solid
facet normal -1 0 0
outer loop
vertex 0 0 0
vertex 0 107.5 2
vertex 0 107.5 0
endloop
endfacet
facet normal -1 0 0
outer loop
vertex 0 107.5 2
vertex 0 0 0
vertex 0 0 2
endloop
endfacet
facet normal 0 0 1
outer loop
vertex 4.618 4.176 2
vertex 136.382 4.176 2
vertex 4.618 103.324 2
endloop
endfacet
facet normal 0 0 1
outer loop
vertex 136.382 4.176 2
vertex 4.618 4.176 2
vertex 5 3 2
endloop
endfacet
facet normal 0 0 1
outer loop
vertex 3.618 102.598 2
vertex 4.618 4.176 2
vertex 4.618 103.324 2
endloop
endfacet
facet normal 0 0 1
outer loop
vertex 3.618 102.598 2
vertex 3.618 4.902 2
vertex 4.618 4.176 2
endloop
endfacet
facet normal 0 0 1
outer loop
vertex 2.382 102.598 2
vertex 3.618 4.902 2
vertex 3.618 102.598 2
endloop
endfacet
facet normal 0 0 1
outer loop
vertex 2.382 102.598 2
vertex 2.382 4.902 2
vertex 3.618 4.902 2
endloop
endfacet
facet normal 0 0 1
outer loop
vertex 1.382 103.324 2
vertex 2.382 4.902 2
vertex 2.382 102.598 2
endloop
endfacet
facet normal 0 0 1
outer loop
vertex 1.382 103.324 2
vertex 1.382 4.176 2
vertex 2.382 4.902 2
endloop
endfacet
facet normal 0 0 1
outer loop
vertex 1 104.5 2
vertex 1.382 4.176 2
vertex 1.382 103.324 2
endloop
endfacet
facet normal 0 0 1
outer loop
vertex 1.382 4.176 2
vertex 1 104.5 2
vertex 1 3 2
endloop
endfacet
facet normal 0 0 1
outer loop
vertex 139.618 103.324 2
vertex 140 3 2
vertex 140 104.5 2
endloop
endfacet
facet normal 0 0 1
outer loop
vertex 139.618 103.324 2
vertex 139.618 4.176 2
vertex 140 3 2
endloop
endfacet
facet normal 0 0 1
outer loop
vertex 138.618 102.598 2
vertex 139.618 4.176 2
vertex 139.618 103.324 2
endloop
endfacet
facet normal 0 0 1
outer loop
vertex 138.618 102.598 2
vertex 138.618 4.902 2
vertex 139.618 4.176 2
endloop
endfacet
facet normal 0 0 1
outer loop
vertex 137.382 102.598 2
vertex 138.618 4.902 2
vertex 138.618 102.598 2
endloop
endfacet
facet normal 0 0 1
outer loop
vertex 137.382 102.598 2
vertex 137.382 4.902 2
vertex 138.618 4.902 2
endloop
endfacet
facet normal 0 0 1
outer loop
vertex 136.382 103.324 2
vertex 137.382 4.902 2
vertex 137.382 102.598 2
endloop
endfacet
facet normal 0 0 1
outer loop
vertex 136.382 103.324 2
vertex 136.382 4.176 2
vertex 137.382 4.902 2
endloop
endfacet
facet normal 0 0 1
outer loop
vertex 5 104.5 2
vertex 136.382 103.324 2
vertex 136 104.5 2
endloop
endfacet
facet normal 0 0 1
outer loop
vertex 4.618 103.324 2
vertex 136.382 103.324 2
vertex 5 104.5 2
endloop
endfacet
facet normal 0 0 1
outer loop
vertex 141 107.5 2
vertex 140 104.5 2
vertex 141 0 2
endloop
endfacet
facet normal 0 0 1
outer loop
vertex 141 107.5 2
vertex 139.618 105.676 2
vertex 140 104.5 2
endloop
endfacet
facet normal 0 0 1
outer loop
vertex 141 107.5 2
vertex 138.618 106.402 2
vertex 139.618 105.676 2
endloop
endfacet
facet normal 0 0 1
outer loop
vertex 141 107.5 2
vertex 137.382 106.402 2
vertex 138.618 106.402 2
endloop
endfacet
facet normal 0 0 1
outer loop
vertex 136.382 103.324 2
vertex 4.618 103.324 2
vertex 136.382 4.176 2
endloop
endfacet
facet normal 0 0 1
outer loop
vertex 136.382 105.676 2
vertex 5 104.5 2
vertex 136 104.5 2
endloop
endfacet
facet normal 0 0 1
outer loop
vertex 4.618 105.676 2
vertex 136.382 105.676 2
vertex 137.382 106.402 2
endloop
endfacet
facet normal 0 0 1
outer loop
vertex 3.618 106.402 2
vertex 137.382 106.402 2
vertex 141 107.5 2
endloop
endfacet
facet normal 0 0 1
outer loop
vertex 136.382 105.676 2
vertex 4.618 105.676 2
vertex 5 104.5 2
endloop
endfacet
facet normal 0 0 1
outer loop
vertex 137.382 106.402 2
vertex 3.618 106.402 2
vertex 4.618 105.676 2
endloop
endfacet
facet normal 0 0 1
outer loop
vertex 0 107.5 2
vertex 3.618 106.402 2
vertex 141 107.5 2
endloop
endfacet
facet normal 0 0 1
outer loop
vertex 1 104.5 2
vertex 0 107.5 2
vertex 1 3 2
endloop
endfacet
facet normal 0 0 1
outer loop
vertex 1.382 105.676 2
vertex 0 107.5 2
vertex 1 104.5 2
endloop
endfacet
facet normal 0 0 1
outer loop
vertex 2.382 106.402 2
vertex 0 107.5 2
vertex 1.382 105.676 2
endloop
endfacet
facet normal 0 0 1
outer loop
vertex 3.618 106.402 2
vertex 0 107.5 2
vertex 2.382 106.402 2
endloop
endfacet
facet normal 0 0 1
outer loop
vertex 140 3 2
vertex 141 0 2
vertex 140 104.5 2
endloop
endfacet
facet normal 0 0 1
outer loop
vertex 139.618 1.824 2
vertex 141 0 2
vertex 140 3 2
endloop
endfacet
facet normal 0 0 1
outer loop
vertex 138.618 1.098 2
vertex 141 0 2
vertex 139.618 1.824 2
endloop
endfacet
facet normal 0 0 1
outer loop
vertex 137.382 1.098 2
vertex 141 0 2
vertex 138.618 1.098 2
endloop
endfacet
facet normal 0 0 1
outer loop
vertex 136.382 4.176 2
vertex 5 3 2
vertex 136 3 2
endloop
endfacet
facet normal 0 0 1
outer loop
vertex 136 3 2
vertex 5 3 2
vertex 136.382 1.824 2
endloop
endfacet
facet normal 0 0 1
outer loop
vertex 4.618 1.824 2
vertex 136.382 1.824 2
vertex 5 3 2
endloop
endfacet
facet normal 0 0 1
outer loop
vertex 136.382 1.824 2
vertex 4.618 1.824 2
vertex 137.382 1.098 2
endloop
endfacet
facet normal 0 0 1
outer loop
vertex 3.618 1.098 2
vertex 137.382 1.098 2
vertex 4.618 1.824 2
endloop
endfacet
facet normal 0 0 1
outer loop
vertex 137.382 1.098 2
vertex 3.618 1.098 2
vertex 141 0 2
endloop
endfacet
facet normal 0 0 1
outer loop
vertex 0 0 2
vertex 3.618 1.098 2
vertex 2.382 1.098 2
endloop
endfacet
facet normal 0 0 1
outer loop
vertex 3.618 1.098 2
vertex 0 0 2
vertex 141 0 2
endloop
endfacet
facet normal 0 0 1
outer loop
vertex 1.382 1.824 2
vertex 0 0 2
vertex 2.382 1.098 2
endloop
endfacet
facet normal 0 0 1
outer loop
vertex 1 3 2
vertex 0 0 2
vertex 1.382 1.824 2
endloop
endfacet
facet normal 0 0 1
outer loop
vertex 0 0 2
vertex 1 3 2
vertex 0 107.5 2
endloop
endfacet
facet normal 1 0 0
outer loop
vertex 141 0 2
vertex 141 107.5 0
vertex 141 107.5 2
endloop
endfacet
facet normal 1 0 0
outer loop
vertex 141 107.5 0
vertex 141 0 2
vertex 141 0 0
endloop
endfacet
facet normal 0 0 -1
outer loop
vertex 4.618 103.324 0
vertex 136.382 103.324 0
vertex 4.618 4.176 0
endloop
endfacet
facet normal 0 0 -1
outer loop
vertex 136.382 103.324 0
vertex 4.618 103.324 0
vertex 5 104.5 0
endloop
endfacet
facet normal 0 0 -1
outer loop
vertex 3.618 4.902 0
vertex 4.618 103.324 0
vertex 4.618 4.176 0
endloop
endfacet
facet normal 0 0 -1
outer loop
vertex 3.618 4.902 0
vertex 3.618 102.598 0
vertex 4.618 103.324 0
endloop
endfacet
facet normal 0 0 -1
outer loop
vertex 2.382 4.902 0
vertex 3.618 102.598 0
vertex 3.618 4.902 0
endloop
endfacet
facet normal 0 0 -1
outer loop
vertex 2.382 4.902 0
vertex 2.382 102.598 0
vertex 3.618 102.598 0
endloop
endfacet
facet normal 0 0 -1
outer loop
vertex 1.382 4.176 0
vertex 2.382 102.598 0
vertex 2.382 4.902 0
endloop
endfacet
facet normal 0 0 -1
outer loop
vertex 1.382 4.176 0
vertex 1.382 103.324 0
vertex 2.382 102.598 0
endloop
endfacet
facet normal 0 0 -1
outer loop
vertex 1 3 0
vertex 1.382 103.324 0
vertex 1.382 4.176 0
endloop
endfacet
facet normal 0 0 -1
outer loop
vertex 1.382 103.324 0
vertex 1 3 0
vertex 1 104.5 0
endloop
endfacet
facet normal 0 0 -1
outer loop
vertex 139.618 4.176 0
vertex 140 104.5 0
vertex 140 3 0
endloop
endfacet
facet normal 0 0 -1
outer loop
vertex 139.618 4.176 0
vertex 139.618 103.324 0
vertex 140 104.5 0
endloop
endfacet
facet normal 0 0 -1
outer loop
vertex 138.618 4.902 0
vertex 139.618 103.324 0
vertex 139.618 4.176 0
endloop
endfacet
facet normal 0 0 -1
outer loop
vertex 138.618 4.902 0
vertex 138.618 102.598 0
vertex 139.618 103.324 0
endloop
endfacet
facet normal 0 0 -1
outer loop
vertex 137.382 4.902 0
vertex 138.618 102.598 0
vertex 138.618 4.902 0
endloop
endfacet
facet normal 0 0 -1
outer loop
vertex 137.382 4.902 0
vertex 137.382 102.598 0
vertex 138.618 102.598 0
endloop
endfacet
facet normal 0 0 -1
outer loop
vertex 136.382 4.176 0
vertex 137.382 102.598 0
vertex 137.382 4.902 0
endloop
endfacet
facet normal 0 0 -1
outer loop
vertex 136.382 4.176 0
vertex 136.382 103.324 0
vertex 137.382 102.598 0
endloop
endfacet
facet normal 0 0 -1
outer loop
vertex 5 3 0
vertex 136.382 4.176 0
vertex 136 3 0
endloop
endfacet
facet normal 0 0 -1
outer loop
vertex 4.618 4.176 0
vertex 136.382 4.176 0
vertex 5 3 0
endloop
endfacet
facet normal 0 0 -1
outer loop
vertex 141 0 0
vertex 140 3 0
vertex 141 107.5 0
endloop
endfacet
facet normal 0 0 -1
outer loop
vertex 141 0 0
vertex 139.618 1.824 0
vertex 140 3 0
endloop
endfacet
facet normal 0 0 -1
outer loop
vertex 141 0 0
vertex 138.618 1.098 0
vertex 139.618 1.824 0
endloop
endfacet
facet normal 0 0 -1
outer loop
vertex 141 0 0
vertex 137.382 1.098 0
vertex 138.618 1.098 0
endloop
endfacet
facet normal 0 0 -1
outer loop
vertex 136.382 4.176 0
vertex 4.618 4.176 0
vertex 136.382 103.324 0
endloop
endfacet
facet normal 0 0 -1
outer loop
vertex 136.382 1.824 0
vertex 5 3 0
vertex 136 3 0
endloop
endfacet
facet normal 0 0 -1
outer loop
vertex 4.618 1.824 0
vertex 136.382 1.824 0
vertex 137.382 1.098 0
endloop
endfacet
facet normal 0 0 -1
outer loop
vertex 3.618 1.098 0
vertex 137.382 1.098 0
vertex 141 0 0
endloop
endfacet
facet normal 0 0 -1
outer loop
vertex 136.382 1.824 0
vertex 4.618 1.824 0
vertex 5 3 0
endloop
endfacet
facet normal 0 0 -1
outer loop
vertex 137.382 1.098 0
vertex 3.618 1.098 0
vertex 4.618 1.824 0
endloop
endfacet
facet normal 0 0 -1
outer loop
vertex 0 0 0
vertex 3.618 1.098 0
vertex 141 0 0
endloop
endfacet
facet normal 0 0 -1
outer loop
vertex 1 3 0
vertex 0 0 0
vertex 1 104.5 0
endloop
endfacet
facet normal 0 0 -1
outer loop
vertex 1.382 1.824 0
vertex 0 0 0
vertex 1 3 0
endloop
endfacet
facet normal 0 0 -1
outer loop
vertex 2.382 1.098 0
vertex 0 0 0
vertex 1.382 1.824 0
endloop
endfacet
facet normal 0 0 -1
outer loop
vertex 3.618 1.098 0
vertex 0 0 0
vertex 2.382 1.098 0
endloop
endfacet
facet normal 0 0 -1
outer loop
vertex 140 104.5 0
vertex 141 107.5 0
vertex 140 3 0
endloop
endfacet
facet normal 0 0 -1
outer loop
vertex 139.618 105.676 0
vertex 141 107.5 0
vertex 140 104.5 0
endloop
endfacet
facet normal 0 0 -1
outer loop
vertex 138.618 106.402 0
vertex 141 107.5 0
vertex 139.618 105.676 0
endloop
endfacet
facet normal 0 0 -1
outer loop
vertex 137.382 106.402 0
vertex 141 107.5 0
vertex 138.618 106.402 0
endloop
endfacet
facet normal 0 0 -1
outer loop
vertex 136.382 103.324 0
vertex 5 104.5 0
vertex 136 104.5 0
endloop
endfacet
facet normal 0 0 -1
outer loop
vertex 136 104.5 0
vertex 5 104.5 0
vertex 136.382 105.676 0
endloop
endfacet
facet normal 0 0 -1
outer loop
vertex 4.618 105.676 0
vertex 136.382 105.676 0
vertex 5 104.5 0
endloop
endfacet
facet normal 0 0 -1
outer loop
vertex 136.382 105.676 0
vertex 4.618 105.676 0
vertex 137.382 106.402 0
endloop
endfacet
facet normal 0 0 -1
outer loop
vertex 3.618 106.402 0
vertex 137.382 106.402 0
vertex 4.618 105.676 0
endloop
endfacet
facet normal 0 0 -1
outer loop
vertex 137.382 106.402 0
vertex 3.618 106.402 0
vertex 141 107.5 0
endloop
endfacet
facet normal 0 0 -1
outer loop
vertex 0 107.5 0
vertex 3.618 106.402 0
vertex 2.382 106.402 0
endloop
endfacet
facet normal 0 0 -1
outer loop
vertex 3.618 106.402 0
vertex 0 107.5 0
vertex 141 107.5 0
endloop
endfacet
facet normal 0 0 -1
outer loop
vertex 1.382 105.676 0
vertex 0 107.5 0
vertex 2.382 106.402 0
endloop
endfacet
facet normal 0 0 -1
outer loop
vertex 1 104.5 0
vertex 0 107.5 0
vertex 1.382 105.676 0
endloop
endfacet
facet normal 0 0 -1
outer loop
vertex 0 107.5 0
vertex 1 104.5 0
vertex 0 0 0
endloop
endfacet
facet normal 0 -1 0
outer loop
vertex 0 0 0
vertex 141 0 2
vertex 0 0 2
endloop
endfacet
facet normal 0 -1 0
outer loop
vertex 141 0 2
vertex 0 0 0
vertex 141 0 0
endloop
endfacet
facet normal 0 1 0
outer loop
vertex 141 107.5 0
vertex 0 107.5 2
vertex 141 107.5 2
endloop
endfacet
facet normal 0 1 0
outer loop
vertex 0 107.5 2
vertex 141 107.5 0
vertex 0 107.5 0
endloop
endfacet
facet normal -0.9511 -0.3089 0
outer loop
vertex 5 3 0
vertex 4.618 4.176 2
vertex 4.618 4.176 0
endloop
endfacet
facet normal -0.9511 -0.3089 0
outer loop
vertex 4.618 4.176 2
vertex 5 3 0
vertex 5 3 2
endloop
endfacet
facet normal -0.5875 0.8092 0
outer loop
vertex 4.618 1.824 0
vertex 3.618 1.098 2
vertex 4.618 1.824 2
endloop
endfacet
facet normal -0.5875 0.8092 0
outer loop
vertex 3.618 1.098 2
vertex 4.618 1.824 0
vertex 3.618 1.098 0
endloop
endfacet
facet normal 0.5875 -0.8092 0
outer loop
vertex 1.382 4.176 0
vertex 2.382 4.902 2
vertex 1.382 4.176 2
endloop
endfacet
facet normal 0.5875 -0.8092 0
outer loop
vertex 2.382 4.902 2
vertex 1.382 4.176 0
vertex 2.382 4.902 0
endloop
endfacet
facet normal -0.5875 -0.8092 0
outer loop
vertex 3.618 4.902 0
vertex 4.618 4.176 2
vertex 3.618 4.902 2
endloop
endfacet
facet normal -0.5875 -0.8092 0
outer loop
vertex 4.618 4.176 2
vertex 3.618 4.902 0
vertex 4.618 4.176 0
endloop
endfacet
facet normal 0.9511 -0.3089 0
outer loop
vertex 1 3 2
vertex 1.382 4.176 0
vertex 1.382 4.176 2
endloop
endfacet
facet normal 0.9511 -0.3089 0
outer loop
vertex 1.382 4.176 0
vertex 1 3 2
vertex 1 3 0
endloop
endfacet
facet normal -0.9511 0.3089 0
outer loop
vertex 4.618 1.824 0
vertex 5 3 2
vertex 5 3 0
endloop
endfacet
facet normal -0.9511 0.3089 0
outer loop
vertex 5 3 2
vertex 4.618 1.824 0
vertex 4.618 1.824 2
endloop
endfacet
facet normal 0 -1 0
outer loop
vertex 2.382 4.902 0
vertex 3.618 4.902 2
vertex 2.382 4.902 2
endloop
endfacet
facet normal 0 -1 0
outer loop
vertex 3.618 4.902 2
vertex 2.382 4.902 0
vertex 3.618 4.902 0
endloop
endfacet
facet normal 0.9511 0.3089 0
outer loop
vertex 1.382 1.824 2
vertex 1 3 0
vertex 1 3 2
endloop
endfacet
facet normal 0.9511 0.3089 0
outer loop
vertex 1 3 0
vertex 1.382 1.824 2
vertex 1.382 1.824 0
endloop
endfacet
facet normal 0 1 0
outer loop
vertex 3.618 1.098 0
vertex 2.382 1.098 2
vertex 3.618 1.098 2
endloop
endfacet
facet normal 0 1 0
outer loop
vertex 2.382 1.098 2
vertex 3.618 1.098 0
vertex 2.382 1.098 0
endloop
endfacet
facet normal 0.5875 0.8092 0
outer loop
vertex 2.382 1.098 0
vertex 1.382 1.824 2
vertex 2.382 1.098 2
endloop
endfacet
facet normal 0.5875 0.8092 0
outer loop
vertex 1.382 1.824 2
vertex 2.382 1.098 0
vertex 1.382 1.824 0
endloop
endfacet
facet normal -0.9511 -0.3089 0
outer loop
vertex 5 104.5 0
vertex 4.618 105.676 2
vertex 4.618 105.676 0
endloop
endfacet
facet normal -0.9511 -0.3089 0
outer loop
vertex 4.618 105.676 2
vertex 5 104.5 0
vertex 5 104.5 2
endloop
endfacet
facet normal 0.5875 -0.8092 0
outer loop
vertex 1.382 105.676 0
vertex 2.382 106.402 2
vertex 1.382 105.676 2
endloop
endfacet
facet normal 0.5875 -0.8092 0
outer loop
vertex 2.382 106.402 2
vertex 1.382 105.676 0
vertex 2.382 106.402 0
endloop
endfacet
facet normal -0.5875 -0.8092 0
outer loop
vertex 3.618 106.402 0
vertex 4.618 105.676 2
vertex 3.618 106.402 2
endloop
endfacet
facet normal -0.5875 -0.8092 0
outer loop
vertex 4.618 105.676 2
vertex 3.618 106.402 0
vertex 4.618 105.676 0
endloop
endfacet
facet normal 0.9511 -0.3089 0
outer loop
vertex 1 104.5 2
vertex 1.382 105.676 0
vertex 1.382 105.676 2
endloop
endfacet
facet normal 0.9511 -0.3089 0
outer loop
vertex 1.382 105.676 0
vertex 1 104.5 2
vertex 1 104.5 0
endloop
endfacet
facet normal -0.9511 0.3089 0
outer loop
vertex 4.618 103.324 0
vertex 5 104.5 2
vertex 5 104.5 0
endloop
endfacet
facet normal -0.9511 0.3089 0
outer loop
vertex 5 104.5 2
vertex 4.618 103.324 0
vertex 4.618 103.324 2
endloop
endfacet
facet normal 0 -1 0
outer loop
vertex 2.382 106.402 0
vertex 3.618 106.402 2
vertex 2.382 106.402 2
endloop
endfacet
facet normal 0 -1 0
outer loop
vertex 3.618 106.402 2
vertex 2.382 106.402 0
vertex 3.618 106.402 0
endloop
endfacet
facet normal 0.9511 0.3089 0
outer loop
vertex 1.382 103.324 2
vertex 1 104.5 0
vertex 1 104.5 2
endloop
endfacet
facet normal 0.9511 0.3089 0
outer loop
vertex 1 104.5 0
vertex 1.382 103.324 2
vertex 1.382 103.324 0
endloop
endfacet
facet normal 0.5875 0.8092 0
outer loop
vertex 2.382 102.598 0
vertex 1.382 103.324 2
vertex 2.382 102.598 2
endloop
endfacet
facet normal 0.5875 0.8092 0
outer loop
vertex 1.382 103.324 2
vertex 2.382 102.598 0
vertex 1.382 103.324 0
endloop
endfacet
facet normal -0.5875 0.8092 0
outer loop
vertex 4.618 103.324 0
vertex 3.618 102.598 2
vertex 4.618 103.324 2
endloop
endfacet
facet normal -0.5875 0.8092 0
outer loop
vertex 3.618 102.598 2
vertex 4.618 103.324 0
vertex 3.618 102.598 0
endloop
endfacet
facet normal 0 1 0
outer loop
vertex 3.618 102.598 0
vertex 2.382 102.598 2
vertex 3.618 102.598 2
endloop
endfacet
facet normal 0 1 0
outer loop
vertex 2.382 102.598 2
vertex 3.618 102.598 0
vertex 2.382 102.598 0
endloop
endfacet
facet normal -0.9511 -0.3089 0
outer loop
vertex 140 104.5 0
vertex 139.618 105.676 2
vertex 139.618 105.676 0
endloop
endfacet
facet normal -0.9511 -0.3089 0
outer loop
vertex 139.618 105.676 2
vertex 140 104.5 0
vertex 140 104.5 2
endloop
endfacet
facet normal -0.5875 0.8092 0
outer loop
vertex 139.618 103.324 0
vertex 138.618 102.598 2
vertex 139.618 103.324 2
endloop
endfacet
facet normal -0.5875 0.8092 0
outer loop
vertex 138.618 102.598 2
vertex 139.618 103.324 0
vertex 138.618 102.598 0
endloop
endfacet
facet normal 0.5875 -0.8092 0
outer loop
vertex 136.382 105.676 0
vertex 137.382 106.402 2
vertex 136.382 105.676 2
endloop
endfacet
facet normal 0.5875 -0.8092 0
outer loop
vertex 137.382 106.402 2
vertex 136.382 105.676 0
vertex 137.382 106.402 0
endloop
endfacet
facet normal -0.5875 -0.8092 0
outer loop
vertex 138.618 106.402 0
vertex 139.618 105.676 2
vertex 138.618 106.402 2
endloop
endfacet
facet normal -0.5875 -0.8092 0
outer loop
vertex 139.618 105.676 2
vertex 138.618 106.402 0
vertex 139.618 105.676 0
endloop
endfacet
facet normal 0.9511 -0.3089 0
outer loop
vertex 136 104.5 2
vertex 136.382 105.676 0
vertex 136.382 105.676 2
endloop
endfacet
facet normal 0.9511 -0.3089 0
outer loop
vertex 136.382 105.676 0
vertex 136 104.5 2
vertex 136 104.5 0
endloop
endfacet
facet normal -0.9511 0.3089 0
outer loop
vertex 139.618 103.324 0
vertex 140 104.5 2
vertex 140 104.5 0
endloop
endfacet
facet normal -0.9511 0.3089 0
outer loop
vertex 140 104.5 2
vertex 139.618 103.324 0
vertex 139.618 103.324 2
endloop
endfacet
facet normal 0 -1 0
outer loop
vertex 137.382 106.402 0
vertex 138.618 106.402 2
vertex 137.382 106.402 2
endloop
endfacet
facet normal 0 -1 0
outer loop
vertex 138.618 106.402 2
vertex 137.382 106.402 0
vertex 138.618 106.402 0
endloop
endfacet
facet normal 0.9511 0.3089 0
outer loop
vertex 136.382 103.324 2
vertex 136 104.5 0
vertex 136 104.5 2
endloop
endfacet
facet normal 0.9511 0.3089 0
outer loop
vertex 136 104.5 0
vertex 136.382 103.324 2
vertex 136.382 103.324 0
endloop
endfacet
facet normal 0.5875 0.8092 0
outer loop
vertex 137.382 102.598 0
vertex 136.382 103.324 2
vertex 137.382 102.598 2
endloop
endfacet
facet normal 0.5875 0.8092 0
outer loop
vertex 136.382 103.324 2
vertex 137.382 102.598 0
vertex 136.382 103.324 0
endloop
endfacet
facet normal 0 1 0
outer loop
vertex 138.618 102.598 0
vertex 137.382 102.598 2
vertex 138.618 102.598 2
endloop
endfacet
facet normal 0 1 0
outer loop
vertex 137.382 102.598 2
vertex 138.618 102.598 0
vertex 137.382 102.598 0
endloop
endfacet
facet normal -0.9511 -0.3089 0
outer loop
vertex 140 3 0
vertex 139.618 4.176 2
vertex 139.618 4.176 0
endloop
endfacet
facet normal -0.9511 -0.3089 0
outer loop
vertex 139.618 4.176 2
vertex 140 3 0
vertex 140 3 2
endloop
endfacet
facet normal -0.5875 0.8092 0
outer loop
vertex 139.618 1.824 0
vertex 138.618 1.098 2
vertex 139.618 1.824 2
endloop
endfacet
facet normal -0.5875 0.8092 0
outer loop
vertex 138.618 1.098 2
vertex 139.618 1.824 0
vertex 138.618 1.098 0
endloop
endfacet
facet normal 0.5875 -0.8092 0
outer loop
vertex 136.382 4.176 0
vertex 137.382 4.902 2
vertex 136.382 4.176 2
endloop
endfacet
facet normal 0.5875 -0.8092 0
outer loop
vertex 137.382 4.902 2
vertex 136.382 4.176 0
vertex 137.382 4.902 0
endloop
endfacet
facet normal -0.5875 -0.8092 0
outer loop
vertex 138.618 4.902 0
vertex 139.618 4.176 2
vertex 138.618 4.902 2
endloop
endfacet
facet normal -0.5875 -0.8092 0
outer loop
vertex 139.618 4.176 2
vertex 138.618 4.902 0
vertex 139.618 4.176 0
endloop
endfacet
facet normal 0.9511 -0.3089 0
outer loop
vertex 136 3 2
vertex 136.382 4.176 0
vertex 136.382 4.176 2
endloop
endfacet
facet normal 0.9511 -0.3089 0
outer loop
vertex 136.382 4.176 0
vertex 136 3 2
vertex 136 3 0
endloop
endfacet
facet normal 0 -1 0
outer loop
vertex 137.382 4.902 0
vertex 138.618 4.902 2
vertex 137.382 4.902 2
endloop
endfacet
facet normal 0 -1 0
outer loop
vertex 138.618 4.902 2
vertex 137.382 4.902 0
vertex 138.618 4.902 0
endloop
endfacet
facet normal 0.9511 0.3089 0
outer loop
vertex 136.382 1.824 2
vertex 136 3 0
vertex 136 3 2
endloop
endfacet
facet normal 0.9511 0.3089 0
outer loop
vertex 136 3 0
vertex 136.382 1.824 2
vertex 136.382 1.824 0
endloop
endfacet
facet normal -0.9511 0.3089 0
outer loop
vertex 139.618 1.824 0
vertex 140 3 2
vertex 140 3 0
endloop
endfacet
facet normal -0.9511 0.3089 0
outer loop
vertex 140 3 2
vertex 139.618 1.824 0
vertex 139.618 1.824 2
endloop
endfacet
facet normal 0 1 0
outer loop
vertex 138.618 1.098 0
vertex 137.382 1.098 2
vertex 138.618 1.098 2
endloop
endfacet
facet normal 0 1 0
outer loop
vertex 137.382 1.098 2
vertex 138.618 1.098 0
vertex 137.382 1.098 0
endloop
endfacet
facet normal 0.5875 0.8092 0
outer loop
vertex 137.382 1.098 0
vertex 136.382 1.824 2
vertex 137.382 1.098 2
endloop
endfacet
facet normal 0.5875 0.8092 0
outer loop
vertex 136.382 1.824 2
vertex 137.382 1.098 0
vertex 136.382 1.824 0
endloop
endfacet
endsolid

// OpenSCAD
/* ModuleA
 * backplate
 */
keyCols = 7;
keyRows = 6;
keyX = 15;
keyY = 12.5;
keySpace = 3.5;
edgeSpaceAddition = 5;
edgeSpace = (edgeSpaceAddition*2)-keySpace;
keyZ = -1;

moduleX = (edgeSpace+edgeSpaceAddition)+(keySpace*keyCols)+keyX*(keyCols-1)+keyX;
moduleY = (edgeSpace+edgeSpaceAddition)+(keySpace*keyRows)+keyY*(keyRows-1)+keyY;
moduleZ = 2;

keySize = [keyX, keyY, moduleZ+2];

function position(x,y,z) = [edgeSpace+keySpace*x+keyX*(x-1)-(edgeSpaceAddition/2), edgeSpace+keySpace*y+keyY*(y-1)-(edgeSpaceAddition/2), z];

module keyHoles (yStart, yEnd, xStart, xEnd){
    for(y = [yStart:yEnd]){
        for(x = [xStart:xEnd]){
			translate(position(x,y,keyZ)) cube(keySize);
        }
    }
}

module screwHole (x, y){
	translate([x,y,keyZ]) cylinder(h=moduleZ+2, r=2, $fn=10);
}

difference(){
    cube([moduleX,moduleY,moduleZ]);

	screwHole(3,3);
	screwHole(3,moduleY-3);
	screwHole(moduleX-3,moduleY-3);
	screwHole(moduleX-3,3);
}
